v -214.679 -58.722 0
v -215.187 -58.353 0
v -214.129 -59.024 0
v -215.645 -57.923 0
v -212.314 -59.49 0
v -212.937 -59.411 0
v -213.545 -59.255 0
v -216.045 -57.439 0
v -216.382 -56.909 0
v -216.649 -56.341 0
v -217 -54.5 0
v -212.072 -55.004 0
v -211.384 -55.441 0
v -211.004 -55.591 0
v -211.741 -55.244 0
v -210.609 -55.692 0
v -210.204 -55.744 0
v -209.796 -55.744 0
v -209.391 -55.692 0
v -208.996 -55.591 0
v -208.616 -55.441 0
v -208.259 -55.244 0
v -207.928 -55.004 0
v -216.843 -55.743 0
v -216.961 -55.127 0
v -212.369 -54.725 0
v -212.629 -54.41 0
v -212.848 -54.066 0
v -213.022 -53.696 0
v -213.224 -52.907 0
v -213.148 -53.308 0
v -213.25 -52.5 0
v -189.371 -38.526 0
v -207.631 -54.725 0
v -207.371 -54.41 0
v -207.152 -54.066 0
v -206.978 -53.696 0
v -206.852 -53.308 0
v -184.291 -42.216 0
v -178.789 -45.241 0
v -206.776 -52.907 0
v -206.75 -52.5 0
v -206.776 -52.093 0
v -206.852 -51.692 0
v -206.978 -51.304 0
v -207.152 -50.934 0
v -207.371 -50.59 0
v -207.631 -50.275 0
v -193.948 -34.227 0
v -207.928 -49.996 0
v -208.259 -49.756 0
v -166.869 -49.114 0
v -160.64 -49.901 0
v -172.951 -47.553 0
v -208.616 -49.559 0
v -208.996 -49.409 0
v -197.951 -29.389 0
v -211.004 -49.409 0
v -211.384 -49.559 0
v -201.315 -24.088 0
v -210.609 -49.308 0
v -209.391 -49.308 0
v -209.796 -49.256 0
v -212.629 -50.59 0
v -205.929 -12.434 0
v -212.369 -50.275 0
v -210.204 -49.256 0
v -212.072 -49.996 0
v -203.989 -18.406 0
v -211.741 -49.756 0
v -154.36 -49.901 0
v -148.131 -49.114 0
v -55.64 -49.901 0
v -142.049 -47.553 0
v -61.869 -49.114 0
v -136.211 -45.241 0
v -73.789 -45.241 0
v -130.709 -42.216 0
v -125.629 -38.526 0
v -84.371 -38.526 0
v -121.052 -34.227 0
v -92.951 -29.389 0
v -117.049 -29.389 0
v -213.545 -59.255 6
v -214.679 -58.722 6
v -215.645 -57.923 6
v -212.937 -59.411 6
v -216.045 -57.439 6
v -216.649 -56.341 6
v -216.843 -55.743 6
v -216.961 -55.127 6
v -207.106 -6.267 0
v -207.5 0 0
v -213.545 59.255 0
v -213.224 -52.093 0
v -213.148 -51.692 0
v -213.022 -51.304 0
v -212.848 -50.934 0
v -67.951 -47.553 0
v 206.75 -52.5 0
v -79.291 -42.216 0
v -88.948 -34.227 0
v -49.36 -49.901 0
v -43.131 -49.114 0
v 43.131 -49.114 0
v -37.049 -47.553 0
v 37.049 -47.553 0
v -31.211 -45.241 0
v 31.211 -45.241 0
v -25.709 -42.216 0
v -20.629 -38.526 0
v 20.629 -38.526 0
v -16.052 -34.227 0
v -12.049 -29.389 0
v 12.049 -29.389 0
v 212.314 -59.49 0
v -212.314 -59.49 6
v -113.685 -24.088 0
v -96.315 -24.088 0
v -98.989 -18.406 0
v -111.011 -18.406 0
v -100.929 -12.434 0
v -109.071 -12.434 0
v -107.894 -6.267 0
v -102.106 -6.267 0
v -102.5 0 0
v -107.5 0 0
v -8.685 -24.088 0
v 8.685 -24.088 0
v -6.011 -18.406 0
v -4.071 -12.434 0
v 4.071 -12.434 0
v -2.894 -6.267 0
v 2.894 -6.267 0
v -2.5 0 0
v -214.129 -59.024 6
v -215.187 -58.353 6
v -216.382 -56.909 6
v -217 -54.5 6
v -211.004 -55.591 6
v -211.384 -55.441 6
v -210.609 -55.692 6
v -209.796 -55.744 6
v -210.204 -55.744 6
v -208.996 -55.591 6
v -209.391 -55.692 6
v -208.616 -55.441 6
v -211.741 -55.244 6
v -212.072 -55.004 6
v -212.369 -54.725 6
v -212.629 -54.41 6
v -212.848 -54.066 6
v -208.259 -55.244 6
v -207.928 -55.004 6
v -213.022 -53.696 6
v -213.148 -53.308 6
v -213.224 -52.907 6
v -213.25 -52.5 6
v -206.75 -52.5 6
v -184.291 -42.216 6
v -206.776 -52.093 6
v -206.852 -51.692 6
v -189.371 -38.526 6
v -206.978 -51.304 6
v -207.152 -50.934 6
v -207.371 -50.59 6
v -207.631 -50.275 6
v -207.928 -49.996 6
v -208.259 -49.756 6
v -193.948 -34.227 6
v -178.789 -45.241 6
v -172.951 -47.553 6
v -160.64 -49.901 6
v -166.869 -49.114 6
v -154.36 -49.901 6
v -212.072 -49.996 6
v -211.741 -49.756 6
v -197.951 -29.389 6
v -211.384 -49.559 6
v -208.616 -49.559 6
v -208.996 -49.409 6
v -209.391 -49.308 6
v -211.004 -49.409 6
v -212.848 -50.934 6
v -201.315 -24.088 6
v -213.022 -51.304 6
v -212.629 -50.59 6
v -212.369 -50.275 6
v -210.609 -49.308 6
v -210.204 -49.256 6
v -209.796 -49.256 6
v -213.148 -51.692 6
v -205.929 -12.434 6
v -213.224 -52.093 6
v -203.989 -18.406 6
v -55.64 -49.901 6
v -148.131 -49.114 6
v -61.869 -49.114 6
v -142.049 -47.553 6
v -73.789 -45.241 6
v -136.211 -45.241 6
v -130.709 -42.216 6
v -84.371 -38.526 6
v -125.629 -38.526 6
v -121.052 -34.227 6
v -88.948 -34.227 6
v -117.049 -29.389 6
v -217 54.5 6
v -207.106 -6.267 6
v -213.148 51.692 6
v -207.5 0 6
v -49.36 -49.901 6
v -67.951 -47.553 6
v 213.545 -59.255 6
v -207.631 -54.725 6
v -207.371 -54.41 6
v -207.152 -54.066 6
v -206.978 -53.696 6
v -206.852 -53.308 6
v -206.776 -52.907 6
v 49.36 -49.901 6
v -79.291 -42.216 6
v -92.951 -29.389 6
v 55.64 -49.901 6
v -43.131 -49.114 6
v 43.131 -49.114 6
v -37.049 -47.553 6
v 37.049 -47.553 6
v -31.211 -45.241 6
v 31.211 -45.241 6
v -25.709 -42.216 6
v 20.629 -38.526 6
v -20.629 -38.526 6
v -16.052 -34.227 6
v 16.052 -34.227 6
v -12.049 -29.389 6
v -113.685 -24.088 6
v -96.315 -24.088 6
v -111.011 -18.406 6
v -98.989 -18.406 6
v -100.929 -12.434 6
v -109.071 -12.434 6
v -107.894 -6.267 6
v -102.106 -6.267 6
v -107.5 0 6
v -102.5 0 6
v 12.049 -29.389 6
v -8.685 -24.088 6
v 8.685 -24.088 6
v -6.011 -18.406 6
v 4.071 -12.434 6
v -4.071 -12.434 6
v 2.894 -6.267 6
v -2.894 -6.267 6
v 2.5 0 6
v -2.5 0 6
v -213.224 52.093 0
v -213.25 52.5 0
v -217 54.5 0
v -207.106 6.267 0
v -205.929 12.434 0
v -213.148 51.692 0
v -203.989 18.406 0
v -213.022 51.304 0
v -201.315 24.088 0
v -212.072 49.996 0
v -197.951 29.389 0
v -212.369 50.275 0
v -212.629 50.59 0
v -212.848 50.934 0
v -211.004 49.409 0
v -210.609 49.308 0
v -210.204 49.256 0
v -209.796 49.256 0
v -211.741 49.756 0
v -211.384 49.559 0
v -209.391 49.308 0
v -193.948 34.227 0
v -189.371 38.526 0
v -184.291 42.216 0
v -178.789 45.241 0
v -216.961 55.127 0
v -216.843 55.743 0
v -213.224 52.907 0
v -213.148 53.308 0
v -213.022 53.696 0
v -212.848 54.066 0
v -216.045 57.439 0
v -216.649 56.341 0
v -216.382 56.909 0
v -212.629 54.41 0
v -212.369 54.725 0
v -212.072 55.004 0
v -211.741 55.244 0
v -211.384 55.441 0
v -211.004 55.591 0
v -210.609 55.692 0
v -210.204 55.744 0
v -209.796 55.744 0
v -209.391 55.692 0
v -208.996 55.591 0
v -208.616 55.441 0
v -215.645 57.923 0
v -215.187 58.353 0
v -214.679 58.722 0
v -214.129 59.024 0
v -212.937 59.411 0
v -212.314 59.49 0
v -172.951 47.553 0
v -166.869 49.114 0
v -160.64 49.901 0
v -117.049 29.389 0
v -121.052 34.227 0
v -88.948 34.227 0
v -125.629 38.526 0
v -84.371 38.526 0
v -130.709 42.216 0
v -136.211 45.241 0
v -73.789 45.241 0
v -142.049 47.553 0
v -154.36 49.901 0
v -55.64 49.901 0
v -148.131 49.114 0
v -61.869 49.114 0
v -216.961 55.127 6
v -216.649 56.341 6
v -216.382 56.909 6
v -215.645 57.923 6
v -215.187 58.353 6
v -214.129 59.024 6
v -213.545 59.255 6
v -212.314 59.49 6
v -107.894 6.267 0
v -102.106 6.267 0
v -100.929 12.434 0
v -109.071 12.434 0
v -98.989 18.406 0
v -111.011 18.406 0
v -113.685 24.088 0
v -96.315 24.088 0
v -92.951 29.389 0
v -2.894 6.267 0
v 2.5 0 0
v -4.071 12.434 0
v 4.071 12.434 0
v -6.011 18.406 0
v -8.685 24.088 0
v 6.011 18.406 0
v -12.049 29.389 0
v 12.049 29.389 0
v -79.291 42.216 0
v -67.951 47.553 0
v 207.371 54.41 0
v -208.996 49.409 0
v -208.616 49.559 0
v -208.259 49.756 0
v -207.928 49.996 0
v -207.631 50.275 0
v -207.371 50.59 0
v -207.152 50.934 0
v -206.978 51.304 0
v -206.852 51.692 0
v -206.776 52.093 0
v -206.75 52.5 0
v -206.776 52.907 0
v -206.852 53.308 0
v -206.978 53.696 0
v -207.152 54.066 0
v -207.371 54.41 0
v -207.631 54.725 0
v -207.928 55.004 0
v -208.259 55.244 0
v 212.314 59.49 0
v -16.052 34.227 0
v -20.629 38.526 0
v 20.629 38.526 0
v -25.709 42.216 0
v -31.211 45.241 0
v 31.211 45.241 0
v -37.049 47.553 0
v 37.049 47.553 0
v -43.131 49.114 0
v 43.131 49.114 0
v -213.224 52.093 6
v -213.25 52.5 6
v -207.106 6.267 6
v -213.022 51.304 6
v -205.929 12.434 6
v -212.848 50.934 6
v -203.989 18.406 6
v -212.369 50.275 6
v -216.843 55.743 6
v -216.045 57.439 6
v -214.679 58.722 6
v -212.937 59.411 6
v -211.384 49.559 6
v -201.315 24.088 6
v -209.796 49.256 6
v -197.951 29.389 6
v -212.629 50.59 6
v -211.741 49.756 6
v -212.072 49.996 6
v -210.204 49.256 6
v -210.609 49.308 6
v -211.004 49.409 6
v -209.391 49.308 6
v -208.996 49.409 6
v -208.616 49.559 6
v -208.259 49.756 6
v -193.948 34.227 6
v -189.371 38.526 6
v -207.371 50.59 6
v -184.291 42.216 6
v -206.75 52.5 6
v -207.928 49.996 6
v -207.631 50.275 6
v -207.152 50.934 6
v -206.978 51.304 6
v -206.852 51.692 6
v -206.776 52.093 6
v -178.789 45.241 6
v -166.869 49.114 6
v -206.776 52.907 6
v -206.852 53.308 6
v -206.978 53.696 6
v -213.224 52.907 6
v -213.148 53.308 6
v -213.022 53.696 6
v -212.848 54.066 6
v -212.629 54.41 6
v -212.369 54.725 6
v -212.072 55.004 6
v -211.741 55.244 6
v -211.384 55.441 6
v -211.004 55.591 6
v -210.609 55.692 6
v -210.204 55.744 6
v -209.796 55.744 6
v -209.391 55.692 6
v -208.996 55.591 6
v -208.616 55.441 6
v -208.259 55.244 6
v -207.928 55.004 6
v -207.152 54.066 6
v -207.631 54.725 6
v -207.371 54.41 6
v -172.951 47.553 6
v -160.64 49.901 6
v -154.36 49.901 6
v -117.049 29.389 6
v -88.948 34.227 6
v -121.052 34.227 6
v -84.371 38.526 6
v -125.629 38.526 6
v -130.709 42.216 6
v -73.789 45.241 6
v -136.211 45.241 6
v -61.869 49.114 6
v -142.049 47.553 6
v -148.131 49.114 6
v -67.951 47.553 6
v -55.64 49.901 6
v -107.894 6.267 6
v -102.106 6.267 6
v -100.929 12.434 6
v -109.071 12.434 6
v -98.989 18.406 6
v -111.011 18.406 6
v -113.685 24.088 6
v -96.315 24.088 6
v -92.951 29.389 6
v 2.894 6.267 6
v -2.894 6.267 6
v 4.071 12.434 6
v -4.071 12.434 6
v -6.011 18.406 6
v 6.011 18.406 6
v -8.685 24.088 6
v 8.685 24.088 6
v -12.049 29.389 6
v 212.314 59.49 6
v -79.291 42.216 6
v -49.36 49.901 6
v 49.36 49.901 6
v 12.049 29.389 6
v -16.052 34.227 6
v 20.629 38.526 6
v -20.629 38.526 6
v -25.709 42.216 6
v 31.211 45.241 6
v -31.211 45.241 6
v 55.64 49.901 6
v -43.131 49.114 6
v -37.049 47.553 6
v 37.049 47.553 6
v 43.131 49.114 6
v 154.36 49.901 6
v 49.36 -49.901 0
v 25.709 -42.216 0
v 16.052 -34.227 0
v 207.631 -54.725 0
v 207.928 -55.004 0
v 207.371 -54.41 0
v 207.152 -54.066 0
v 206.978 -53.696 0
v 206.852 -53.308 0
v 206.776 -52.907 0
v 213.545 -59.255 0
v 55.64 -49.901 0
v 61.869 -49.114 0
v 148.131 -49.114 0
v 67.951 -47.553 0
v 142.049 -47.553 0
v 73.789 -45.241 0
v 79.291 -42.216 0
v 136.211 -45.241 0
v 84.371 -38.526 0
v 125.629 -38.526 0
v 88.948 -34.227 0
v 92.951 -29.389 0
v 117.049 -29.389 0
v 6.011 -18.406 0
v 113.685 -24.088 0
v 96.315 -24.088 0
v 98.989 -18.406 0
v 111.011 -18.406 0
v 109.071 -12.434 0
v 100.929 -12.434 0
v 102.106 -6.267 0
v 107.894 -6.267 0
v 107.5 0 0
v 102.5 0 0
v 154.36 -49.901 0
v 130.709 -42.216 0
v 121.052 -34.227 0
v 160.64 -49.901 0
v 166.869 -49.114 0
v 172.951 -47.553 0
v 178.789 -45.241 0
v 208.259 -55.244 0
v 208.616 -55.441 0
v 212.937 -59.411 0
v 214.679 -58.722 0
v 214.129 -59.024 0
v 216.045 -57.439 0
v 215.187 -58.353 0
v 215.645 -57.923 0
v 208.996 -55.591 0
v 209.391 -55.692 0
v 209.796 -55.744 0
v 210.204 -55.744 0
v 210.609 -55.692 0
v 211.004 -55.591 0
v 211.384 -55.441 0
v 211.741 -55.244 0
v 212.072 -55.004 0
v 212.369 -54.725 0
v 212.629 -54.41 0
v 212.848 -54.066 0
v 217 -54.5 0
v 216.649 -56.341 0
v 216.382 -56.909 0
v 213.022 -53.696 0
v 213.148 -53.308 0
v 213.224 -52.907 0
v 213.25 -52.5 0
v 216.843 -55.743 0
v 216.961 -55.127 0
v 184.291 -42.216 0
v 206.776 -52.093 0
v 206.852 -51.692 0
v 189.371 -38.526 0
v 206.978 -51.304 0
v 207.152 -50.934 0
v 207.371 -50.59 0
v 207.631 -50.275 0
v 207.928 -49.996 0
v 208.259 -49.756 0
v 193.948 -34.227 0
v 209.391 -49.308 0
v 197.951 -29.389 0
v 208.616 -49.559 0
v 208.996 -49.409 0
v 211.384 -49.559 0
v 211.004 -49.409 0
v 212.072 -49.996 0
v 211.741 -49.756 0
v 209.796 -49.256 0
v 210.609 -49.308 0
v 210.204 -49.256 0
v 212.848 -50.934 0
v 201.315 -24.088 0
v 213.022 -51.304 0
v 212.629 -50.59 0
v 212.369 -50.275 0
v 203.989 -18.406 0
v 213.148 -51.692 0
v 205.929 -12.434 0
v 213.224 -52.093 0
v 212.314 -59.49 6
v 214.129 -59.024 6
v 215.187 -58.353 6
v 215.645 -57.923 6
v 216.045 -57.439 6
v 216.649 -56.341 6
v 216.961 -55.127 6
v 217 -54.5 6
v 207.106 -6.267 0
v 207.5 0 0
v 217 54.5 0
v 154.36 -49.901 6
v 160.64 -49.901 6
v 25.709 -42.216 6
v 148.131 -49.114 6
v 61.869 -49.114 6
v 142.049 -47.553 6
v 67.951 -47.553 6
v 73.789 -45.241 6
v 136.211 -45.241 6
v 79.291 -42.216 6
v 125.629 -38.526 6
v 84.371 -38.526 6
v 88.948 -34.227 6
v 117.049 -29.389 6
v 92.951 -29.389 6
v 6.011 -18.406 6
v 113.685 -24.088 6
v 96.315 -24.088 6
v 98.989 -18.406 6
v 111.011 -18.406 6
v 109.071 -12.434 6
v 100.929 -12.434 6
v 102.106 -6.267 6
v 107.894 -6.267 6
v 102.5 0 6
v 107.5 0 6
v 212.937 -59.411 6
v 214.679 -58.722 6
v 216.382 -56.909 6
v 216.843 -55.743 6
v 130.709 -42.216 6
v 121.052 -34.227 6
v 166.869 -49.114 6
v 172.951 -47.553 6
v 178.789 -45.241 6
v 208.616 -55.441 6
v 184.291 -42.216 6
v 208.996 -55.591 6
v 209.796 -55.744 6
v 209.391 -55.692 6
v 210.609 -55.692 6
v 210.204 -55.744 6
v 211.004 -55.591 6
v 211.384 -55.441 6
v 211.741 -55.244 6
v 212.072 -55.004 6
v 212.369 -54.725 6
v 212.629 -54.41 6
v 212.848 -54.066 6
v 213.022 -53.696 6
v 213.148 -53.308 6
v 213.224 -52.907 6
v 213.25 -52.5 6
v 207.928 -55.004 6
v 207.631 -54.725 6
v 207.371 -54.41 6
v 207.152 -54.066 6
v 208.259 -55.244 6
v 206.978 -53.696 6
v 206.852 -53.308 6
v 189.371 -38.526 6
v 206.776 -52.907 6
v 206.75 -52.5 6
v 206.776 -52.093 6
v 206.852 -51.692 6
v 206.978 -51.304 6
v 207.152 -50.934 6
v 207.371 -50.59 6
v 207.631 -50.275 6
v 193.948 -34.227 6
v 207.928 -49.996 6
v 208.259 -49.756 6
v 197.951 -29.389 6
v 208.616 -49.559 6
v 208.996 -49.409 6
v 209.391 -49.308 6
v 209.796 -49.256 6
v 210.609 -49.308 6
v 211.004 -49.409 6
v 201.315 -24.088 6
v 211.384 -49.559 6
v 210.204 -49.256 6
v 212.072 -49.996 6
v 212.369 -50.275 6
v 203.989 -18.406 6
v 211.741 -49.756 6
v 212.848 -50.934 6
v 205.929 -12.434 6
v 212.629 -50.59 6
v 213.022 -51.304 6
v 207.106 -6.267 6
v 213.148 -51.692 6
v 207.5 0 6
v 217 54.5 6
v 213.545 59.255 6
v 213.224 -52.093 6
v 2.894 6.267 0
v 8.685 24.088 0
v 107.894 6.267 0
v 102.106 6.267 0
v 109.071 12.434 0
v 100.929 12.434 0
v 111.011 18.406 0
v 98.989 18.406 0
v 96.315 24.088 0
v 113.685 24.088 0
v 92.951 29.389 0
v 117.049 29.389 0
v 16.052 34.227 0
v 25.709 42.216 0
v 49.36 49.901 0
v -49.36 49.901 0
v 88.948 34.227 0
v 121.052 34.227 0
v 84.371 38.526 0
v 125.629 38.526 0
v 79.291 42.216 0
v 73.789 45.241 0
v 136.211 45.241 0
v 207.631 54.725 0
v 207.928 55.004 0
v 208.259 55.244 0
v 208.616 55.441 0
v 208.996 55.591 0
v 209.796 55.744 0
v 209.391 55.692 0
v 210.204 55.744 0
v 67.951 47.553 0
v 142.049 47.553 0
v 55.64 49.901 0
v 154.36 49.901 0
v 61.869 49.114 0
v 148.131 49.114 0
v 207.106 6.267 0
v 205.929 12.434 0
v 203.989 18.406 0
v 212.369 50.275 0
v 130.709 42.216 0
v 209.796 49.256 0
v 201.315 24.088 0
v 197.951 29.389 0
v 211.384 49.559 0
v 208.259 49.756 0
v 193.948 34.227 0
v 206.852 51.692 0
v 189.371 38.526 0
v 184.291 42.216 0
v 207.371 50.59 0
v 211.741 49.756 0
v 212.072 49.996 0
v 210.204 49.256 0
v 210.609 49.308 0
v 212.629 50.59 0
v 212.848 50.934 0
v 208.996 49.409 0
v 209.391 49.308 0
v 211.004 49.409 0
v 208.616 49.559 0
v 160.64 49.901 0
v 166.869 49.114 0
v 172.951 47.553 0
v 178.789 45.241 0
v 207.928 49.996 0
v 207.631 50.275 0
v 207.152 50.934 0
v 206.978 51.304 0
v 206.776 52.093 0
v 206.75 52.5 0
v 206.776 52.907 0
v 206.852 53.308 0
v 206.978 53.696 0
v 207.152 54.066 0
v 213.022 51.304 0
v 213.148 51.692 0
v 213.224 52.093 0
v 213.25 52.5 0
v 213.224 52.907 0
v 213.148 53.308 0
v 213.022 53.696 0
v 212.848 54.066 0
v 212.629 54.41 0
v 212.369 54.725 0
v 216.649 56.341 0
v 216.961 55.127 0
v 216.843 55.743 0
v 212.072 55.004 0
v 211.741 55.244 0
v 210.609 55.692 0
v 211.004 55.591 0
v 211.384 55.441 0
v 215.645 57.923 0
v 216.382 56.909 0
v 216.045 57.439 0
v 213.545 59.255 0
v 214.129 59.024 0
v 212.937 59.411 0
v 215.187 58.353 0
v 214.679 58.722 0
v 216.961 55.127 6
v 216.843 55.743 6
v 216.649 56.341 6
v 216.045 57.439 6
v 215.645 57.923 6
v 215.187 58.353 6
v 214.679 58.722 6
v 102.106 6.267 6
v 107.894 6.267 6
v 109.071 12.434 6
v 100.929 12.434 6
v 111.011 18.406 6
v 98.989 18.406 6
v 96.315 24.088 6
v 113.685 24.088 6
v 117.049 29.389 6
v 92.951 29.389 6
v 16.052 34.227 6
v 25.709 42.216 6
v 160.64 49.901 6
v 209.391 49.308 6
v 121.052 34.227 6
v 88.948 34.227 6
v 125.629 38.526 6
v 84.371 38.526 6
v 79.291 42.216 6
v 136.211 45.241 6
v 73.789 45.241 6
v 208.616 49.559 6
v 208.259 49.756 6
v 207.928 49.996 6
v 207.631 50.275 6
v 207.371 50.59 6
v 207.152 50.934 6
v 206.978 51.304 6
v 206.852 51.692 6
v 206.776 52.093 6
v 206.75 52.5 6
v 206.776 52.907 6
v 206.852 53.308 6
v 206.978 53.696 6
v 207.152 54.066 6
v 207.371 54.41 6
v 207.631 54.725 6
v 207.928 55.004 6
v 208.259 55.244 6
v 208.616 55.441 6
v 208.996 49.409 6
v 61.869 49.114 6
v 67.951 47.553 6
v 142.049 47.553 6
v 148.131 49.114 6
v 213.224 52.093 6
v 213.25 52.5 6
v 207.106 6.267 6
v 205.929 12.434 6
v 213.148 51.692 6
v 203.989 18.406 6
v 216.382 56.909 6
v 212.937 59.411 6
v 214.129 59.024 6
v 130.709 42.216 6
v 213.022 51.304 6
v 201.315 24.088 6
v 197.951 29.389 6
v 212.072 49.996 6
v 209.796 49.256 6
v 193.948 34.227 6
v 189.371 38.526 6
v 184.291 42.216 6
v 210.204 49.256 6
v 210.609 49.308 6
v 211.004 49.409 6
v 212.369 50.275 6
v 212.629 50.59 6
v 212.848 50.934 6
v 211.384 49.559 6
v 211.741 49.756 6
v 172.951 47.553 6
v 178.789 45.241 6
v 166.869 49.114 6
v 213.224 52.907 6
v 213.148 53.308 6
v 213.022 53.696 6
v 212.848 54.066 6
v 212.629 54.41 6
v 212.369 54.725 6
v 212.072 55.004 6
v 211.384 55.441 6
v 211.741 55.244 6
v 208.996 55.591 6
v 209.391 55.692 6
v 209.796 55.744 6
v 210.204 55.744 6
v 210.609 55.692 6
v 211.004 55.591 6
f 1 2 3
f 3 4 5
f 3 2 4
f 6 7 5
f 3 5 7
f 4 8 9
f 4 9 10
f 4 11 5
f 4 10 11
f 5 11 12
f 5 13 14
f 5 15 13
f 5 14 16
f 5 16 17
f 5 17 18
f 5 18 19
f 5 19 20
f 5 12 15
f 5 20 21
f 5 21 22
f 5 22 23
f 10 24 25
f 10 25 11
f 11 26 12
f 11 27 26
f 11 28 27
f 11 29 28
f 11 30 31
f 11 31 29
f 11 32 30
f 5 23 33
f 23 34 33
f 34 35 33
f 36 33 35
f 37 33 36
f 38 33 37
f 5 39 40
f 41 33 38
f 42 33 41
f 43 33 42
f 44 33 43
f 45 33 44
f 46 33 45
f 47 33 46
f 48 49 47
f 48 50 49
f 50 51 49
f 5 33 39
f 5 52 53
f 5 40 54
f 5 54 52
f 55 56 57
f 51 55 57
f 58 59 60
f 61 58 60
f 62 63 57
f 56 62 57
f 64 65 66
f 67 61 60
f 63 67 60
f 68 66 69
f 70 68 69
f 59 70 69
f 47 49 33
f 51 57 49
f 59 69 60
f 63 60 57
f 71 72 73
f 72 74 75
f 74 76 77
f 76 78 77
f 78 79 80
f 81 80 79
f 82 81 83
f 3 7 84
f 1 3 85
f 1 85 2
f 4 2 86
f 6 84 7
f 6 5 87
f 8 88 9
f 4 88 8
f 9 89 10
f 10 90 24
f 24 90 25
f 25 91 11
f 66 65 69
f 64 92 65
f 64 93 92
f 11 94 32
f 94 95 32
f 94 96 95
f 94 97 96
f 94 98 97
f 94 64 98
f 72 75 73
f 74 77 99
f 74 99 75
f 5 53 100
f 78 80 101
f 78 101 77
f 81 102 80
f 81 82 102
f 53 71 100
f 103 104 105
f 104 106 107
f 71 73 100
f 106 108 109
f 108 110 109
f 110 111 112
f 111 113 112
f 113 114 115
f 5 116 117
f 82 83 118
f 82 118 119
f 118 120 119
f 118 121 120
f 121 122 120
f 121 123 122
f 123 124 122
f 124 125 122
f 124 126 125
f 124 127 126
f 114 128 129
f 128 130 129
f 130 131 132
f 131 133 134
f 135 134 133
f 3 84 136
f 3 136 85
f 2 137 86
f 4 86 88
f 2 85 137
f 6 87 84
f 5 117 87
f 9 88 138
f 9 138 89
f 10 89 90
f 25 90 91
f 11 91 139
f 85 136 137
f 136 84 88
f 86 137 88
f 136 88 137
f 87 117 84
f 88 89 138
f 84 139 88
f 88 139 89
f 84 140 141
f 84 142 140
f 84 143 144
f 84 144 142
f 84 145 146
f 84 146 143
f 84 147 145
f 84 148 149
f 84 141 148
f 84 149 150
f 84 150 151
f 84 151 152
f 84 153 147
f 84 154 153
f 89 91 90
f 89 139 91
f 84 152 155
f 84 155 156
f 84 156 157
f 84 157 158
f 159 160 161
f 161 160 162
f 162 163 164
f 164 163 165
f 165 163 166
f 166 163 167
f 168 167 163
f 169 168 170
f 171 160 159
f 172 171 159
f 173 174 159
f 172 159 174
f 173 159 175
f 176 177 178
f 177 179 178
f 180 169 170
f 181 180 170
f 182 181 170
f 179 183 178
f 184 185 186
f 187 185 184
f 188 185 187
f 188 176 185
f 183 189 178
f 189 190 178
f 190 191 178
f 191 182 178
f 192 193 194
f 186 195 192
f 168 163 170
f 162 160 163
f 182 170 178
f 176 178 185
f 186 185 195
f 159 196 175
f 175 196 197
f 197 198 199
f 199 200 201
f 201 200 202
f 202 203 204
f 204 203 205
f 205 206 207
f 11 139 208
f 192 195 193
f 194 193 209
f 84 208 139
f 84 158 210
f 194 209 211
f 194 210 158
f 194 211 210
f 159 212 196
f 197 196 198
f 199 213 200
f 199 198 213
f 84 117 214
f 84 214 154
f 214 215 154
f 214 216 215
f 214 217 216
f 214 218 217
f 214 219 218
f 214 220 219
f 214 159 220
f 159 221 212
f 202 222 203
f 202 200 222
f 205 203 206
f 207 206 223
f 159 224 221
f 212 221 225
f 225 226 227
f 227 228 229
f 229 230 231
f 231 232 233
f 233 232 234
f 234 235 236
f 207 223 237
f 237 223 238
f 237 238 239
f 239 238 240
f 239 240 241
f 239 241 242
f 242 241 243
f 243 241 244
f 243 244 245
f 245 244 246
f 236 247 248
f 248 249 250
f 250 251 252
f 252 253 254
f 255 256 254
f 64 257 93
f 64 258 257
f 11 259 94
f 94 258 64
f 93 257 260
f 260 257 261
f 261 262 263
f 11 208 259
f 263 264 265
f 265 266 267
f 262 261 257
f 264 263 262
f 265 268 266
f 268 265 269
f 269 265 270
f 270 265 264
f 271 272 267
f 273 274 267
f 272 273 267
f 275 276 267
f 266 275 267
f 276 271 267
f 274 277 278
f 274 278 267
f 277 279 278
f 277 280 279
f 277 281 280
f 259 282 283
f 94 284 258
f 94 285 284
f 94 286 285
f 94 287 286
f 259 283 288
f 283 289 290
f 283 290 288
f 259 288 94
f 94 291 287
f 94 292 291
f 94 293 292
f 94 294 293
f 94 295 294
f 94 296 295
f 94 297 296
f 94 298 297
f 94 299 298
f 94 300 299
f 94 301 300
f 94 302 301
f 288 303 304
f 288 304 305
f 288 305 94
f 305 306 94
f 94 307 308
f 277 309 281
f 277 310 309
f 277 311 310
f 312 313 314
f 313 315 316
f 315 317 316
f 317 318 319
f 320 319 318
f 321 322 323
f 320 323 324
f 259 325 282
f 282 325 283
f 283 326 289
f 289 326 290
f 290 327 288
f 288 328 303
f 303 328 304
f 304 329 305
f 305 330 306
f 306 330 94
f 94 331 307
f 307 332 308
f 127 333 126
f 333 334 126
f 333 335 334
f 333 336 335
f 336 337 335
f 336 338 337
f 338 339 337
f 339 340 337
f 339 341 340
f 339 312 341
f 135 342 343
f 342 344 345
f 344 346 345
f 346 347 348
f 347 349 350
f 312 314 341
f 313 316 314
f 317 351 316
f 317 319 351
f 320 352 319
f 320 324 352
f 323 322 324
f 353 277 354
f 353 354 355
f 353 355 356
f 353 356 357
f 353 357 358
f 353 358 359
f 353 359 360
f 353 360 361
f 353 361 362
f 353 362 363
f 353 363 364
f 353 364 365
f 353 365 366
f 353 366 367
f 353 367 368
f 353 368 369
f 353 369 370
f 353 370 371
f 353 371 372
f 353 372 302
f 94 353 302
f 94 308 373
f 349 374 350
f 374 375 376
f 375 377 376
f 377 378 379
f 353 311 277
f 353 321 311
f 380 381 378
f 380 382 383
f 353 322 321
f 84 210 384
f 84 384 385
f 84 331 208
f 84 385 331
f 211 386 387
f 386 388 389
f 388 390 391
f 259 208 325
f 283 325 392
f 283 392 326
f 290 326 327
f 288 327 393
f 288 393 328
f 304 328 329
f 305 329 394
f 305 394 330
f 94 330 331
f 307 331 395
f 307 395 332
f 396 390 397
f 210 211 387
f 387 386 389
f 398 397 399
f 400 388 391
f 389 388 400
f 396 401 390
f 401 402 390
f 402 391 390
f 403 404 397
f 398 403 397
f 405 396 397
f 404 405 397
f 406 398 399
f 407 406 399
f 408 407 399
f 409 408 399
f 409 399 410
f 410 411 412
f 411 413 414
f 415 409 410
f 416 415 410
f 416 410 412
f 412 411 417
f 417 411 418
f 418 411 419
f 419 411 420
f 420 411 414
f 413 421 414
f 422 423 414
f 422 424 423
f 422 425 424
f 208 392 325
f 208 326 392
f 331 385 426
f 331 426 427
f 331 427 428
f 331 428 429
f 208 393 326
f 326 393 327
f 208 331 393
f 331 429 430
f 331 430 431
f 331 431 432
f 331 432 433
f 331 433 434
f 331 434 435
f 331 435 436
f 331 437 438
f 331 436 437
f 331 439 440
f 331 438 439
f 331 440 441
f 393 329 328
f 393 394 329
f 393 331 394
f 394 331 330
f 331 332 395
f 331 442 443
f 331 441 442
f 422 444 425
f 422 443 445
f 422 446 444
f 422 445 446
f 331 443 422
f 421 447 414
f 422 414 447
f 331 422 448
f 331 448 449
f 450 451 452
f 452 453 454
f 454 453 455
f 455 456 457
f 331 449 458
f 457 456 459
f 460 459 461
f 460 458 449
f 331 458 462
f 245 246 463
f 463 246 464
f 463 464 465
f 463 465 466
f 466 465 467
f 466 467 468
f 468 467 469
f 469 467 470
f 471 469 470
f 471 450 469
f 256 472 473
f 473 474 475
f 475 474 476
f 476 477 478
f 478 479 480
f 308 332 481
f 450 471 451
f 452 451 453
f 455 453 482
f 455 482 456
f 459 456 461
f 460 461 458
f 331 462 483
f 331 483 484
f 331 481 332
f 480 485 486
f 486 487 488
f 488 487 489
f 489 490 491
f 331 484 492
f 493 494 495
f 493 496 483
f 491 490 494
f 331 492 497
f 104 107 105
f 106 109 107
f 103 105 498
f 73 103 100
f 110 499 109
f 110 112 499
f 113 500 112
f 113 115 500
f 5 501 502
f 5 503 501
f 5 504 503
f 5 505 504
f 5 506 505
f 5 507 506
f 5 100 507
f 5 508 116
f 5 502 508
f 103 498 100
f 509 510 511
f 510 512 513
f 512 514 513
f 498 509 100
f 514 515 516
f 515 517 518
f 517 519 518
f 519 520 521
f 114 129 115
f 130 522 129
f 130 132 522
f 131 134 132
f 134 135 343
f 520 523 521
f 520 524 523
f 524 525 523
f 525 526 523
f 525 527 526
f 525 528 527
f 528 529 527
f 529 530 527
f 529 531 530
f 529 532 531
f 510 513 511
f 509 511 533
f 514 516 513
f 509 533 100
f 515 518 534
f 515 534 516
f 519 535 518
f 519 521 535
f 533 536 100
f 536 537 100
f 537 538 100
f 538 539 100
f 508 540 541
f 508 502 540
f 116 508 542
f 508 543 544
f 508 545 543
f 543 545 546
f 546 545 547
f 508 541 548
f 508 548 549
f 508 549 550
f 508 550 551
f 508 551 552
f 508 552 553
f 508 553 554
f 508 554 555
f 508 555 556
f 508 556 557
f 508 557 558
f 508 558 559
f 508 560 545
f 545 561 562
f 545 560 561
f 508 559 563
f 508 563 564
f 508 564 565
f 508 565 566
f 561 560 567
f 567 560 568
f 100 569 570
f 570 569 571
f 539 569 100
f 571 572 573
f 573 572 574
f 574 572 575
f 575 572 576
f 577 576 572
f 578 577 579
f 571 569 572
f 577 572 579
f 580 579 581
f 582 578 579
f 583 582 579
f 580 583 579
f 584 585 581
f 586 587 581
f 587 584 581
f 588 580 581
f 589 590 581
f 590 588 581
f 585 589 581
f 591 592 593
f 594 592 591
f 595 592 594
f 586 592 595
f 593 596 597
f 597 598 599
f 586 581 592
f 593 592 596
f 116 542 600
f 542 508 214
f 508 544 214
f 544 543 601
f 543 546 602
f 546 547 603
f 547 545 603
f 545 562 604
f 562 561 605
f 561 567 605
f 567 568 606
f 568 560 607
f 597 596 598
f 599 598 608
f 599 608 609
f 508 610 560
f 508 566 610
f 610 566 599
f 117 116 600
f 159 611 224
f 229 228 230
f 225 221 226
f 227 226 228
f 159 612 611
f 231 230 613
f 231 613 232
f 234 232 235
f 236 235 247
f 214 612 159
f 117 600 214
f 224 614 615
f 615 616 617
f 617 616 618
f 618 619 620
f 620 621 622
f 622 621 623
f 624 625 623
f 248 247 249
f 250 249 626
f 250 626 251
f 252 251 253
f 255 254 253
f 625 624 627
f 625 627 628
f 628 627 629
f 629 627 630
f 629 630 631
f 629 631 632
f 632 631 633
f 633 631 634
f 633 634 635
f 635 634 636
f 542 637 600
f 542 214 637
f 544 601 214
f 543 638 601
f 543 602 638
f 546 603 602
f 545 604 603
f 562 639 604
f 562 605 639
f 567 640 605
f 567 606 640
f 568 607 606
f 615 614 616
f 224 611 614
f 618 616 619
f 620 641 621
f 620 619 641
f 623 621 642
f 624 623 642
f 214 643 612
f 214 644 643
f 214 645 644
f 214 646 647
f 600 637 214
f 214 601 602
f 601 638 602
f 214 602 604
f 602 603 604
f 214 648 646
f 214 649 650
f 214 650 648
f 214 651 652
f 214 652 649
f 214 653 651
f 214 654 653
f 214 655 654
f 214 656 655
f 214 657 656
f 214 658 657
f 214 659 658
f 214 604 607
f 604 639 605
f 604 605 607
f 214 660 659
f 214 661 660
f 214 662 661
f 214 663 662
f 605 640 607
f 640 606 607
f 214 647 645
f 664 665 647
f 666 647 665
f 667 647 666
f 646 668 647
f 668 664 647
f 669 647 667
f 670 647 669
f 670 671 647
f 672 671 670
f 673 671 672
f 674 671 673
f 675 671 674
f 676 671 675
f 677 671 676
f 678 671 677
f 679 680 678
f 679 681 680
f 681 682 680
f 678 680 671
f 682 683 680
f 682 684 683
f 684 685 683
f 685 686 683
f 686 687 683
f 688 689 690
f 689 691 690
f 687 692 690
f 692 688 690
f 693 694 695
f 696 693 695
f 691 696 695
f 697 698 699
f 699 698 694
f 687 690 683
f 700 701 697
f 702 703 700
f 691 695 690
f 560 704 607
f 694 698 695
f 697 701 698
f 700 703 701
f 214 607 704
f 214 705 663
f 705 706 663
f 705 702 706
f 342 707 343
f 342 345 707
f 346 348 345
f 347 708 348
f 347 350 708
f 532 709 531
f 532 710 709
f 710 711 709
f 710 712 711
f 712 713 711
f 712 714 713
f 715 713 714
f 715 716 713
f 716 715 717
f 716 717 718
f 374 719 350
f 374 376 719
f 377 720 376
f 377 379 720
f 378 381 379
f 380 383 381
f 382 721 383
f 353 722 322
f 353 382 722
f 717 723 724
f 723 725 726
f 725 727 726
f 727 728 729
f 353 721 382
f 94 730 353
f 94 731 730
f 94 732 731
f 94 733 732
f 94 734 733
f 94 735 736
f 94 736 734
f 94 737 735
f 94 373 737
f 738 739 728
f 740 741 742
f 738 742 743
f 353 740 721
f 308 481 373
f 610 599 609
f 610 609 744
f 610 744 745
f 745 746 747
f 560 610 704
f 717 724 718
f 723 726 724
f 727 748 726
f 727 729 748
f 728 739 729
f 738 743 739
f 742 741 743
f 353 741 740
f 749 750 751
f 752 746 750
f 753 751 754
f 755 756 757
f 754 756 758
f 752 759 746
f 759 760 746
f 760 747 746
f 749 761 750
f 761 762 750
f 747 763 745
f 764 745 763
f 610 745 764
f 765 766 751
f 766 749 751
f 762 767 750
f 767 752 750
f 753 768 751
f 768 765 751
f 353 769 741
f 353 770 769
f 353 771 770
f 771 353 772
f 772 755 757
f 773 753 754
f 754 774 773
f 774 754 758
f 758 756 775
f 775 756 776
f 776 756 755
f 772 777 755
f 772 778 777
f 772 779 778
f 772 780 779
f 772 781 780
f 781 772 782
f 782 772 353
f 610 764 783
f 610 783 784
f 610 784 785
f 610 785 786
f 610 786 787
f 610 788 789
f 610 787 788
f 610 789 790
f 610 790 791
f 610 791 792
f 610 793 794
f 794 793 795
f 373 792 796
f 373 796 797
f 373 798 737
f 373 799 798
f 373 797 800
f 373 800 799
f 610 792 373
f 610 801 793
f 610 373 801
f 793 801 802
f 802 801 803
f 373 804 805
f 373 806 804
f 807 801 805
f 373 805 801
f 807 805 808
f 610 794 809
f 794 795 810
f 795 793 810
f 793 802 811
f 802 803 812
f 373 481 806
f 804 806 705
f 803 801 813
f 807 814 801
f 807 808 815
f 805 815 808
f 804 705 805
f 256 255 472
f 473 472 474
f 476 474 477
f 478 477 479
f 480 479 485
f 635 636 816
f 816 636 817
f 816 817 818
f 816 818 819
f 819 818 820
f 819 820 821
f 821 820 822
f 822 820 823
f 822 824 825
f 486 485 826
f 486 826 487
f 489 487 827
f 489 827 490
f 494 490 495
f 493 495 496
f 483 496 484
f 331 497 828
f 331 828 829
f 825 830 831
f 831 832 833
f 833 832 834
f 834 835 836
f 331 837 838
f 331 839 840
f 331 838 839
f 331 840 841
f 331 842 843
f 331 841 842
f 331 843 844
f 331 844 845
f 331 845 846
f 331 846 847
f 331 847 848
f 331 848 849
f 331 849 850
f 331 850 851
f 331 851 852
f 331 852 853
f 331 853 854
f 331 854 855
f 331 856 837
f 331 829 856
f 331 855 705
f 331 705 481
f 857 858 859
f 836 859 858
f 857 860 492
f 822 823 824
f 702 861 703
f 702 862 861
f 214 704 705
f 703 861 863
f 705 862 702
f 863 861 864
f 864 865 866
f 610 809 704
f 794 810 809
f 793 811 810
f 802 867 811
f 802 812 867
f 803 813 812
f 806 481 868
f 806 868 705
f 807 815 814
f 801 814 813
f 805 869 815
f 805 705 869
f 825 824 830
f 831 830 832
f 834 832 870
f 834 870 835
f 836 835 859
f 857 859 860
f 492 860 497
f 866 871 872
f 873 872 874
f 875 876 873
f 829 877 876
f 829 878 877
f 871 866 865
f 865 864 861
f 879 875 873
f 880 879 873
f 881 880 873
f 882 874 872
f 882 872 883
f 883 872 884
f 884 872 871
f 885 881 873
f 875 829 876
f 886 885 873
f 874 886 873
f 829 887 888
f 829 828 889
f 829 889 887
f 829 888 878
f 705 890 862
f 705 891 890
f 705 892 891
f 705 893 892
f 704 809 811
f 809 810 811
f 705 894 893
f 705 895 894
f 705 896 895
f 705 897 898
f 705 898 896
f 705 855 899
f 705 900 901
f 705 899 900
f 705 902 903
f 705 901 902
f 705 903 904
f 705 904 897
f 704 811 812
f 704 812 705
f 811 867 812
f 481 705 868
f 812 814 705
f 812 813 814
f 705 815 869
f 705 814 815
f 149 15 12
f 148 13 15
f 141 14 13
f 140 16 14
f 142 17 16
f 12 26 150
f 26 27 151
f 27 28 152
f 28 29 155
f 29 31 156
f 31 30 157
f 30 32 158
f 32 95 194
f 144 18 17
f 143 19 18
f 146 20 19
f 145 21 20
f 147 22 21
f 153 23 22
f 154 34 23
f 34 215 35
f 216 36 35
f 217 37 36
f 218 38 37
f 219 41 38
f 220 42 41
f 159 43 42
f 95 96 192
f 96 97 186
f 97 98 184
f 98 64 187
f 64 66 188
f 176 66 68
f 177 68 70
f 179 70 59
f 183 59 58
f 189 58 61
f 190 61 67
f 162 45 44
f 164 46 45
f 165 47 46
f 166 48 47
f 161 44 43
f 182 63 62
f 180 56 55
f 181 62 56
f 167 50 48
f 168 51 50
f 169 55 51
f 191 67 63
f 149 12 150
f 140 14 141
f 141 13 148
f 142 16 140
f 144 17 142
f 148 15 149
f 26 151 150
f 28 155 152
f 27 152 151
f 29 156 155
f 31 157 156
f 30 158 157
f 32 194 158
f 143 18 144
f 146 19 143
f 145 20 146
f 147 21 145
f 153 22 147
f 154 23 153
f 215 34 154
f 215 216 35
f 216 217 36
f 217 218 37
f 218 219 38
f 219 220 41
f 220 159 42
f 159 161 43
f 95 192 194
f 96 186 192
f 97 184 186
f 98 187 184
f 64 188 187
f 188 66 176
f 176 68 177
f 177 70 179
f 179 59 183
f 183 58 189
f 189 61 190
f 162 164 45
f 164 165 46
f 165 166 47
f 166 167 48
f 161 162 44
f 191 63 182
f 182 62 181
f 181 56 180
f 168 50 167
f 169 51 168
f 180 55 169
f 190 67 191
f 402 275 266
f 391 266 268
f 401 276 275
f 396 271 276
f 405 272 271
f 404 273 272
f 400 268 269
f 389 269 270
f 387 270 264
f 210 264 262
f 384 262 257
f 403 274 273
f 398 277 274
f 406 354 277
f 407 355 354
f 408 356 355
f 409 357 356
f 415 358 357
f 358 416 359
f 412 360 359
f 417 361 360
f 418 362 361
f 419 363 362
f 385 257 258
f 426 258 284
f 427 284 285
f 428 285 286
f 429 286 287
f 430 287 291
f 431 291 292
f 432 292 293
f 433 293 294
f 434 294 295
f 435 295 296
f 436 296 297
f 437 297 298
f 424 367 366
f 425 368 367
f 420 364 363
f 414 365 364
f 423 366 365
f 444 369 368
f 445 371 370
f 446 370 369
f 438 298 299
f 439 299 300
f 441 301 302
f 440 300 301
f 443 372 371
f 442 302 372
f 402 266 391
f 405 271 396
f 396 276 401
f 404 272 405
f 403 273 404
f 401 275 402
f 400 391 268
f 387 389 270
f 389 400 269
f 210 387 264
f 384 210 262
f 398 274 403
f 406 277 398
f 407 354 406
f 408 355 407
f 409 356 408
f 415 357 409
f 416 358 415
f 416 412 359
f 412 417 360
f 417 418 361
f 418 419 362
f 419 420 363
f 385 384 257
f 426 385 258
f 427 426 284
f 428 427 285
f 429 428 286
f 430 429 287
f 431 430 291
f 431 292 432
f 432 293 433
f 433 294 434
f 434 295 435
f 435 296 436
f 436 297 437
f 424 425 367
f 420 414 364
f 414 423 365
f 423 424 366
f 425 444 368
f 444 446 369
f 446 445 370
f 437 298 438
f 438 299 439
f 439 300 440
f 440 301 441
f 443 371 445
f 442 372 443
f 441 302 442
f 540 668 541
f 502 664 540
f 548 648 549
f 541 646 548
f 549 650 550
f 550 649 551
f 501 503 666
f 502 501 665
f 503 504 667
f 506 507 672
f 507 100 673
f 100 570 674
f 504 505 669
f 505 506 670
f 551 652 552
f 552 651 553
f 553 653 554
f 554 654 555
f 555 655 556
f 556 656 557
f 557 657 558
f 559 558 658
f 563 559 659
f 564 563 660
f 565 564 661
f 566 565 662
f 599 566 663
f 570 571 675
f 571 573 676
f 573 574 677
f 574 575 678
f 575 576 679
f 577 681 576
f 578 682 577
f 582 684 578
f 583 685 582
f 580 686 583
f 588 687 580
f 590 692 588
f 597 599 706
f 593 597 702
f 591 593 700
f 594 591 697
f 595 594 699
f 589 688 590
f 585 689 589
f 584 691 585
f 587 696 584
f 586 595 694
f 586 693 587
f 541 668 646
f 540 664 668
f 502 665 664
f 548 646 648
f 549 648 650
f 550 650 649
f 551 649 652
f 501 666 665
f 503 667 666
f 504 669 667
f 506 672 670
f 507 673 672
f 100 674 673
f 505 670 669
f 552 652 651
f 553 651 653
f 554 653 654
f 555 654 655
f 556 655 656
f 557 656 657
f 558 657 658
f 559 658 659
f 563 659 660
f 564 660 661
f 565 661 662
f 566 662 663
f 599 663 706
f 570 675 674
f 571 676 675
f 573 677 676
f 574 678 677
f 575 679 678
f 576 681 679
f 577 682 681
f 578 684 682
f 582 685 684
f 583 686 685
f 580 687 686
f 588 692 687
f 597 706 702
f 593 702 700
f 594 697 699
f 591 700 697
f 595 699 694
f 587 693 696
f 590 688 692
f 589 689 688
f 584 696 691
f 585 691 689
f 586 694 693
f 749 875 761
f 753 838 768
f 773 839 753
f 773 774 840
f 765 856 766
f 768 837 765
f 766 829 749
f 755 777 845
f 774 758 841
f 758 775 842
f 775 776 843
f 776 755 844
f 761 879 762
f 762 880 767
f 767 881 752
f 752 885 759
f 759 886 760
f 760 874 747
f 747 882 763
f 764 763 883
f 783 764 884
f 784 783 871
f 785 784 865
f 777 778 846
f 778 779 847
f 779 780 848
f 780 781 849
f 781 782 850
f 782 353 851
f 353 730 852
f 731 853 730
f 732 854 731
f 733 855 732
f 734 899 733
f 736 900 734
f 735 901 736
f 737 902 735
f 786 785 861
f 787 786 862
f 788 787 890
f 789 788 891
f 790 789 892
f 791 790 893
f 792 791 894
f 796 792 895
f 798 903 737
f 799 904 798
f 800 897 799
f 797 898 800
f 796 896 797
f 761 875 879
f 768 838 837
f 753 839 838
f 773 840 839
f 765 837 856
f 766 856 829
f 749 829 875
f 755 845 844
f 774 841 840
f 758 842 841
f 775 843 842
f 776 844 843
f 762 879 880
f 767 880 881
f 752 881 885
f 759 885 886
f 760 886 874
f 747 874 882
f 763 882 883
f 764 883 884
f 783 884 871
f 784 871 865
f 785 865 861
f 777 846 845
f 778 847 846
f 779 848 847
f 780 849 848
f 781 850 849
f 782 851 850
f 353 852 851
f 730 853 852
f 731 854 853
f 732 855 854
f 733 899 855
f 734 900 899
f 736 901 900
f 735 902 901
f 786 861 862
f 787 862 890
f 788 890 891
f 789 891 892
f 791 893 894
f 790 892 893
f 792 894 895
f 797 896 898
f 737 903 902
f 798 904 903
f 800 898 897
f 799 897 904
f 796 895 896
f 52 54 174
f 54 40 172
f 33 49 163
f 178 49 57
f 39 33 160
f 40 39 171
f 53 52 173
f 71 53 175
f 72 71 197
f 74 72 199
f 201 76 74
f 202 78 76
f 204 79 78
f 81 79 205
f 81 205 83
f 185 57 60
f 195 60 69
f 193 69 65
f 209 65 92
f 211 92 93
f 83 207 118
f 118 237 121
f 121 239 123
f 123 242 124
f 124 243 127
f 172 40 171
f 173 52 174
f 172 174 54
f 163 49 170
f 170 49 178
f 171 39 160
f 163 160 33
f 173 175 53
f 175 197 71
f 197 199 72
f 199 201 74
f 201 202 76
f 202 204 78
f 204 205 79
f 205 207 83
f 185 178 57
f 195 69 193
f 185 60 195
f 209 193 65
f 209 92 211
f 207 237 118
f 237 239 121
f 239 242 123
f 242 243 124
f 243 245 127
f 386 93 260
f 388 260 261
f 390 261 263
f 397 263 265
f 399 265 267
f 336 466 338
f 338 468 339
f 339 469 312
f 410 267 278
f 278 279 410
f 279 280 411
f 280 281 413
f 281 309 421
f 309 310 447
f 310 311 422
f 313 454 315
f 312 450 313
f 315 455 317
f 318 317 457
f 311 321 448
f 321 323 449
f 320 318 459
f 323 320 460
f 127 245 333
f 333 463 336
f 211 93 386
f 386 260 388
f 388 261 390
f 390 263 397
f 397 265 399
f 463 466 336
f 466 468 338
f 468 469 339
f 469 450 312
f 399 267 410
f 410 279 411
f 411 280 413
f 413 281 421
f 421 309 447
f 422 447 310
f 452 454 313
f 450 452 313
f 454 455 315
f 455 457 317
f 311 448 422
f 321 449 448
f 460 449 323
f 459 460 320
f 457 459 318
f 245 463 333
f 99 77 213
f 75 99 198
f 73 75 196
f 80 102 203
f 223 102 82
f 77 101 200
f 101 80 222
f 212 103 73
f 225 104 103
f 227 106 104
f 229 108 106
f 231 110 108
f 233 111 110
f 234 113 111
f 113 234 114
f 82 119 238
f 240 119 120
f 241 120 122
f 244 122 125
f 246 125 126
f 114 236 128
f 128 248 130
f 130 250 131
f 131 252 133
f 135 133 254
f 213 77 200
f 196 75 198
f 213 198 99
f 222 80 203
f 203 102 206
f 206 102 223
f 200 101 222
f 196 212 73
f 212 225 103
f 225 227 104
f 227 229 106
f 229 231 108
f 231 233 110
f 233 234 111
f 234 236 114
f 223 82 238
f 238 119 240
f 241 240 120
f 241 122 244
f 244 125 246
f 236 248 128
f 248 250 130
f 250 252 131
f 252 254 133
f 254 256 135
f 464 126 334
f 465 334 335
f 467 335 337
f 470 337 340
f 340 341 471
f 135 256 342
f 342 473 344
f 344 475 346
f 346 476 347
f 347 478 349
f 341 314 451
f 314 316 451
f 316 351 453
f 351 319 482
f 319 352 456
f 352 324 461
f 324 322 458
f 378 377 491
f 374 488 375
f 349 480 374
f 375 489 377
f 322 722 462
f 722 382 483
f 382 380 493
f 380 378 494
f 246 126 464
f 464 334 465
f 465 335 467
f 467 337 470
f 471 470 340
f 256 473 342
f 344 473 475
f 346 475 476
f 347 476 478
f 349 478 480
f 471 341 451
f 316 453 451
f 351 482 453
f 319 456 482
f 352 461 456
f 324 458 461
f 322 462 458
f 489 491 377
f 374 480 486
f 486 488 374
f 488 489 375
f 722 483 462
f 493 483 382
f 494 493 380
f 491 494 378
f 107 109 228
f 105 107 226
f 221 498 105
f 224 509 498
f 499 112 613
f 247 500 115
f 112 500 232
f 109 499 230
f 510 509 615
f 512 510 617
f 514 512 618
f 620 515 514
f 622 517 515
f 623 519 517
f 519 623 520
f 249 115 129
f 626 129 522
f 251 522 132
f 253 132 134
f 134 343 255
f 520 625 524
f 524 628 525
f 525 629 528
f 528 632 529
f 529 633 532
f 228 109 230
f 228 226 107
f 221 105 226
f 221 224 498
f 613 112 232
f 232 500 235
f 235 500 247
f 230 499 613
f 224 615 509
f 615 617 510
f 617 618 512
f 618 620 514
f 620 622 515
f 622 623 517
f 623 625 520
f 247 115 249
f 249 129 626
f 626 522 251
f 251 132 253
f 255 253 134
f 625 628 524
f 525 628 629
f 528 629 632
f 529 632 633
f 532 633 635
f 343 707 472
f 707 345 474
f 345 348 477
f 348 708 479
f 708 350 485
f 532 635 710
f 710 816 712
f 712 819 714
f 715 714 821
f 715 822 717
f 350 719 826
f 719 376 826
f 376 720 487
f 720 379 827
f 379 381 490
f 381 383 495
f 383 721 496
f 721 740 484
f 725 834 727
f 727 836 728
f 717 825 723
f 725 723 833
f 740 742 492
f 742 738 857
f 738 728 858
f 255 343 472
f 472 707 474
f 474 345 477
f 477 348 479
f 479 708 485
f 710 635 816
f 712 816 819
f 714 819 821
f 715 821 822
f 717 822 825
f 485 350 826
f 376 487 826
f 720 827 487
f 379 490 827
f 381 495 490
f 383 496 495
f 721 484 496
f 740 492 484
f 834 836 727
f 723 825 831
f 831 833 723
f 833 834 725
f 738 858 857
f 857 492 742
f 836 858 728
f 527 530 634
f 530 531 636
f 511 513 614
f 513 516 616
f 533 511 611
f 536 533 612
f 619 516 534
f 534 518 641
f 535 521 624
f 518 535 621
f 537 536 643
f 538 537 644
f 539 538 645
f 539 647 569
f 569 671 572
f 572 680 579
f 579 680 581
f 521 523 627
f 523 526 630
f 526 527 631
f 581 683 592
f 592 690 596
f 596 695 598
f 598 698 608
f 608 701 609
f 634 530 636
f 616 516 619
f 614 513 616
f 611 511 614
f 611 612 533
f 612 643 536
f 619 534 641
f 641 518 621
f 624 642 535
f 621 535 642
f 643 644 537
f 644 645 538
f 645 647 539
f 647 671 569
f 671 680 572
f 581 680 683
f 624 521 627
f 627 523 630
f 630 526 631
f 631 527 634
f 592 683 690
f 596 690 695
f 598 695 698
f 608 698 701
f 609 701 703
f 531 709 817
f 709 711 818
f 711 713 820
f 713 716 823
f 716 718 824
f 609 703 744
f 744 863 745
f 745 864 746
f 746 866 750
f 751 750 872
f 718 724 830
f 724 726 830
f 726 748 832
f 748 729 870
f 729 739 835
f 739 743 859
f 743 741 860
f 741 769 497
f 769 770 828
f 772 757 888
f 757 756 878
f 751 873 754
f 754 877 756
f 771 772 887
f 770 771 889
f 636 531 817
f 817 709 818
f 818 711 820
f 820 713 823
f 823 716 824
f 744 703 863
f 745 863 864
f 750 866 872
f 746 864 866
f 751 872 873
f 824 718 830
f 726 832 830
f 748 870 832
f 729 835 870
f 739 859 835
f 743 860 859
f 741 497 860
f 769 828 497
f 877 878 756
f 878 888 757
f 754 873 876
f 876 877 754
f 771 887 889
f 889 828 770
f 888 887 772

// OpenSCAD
$fn = 50;

difference() {
	union() {
		hull() {
			translate(v = [-212.0, 54.5, 0]) {
				cylinder(h = 6, r = 5);
			}
			translate(v = [212.0, 54.5, 0]) {
				cylinder(h = 6, r = 5);
			}
			translate(v = [-212.0, -54.5, 0]) {
				cylinder(h = 6, r = 5);
			}
			translate(v = [212.0, -54.5, 0]) {
				cylinder(h = 6, r = 5);
			}
		}
	}
	union() {
		translate(v = [-210.0, -52.5, -100.0]) {
			cylinder(h = 200, r = 3.25);
		}
		translate(v = [-210.0, 52.5, -100.0]) {
			cylinder(h = 200, r = 3.25);
		}
		translate(v = [210.0, -52.5, -100.0]) {
			cylinder(h = 200, r = 3.25);
		}
		translate(v = [210.0, 52.5, -100.0]) {
			cylinder(h = 200, r = 3.25);
		}
		translate(v = [-210.0, -52.5, -100.0]) {
			cylinder(h = 200, r = 1.8);
		}
		translate(v = [-210.0, 52.5, -100.0]) {
			cylinder(h = 200, r = 1.8);
		}
		translate(v = [210.0, -52.5, -100.0]) {
			cylinder(h = 200, r = 1.8);
		}
		translate(v = [210.0, 52.5, -100.0]) {
			cylinder(h = 200, r = 1.8);
		}
		translate(v = [-157.5, 0, 0.0]) {
			cylinder(h = 6, r = 50.0);
		}
		translate(v = [-52.5, 0, 0.0]) {
			cylinder(h = 6, r = 50.0);
		}
		translate(v = [52.5, 0, 0.0]) {
			cylinder(h = 6, r = 50.0);
		}
		translate(v = [157.5, 0, 0.0]) {
			cylinder(h = 6, r = 50.0);
		}
	}
}
